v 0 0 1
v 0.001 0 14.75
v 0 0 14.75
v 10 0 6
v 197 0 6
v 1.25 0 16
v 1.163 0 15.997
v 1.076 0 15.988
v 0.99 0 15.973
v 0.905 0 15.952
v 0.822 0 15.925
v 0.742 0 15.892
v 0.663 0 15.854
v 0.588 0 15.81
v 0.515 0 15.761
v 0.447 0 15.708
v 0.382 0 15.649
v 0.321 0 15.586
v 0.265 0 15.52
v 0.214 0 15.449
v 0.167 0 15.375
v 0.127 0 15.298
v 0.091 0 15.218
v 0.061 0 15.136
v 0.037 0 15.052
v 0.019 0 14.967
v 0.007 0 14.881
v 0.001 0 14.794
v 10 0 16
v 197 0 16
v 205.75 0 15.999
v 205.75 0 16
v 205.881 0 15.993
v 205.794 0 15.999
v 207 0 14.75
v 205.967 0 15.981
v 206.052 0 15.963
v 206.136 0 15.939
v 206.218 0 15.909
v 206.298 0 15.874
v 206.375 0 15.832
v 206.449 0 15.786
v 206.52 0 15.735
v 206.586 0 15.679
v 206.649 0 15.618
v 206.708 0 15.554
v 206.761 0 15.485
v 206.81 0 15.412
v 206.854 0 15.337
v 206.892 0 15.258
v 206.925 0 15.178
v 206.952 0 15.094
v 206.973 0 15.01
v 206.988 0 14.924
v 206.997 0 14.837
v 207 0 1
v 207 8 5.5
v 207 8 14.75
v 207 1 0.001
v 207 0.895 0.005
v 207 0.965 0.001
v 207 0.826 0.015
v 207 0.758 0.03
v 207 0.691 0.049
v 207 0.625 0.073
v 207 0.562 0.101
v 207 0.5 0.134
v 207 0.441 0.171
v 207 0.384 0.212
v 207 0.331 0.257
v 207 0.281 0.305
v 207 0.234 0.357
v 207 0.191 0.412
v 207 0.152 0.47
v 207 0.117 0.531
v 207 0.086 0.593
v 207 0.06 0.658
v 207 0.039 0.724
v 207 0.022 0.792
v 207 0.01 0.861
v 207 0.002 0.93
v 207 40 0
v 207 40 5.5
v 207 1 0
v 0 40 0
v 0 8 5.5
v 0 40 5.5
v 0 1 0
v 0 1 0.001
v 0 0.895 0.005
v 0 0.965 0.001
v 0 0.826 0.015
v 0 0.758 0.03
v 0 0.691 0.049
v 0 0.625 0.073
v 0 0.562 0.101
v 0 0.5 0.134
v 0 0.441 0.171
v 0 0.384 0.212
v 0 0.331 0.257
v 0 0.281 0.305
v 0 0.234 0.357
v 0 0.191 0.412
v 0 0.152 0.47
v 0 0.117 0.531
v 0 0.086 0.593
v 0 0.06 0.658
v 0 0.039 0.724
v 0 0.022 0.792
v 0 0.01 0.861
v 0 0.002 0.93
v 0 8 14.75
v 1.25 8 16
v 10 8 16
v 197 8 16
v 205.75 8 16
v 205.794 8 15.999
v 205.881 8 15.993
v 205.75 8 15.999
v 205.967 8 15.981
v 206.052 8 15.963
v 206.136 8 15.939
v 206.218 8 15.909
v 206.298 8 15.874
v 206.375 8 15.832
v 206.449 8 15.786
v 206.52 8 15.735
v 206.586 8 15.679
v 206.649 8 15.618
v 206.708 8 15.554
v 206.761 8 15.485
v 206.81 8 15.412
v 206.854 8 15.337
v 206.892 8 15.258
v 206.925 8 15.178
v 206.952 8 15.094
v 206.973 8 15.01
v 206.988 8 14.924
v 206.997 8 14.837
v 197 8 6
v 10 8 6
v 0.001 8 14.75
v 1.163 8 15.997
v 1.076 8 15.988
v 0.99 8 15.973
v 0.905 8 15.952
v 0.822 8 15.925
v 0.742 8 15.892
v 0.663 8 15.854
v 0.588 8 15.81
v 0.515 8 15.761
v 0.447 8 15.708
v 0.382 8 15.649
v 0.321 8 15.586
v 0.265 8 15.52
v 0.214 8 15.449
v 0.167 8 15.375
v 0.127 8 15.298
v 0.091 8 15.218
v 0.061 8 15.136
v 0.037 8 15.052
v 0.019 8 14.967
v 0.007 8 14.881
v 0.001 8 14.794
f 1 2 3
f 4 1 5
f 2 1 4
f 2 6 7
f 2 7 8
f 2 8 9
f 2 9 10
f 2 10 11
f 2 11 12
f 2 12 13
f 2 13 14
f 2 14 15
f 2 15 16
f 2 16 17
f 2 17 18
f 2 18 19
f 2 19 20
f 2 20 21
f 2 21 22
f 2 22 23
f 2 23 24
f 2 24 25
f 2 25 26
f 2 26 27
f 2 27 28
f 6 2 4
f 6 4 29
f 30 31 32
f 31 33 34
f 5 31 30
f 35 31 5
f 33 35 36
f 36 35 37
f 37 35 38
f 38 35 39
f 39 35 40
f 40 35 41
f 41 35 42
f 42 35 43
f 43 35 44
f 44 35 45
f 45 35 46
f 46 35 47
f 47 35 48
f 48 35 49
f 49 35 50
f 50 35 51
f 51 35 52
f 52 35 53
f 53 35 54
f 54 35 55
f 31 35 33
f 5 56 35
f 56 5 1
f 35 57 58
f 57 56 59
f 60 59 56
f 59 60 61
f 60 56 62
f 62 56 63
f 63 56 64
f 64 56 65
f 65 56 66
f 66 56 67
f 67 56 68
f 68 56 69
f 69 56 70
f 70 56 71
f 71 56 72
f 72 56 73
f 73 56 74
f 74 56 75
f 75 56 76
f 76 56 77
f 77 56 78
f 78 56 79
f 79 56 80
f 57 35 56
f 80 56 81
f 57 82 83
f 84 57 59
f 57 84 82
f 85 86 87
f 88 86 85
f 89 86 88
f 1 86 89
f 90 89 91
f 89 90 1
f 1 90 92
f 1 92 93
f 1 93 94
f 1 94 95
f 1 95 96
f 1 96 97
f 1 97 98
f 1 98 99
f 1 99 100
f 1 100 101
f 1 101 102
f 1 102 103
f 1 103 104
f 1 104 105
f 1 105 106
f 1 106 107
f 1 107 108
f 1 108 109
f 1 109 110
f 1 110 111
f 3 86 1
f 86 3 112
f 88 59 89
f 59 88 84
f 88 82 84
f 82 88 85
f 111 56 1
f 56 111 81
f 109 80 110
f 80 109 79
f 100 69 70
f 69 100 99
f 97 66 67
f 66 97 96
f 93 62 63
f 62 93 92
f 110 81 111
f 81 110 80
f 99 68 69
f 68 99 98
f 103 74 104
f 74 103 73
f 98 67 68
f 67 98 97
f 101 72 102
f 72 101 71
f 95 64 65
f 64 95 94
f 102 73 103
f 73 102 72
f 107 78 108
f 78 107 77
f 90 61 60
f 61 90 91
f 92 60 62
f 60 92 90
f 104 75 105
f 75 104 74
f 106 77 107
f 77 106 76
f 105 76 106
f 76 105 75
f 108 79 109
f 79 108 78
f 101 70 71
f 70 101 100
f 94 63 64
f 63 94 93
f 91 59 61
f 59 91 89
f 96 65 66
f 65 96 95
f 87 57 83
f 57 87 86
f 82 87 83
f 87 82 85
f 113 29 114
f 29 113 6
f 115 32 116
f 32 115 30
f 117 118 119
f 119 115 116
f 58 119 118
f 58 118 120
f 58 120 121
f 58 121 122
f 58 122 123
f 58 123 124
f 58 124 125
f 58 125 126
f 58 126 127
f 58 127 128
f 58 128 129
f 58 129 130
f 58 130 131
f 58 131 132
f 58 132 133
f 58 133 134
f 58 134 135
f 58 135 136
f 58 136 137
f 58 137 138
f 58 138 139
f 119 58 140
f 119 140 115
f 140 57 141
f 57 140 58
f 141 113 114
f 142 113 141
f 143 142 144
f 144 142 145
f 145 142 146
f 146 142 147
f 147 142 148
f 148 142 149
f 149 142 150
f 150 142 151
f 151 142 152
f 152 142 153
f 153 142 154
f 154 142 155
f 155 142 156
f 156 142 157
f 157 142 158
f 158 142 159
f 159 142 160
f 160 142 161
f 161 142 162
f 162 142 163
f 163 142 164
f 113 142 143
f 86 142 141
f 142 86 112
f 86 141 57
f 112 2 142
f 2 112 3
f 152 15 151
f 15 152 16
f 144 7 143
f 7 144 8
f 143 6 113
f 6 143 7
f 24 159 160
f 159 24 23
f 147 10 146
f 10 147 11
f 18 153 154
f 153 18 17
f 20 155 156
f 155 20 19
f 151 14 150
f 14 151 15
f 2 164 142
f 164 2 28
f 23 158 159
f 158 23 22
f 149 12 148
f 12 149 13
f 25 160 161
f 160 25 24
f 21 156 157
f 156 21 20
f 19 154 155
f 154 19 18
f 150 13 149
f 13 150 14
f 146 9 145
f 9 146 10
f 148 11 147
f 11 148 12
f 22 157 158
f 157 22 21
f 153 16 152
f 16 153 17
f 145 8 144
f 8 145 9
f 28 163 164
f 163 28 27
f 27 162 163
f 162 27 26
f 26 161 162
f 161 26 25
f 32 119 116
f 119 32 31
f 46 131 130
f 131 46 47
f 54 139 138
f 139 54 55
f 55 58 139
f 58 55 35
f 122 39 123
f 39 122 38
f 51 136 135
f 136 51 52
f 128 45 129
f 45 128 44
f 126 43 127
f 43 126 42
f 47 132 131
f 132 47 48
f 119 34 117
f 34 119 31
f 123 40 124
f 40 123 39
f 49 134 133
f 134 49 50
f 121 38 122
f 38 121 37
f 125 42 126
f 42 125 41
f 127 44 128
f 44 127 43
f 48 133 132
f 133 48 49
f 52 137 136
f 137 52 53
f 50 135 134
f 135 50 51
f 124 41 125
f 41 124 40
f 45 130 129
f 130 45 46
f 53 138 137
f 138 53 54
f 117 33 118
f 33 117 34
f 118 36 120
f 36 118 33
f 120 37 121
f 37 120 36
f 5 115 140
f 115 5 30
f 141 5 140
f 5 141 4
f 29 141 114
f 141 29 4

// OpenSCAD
$fn = 90;
width = 207;
depth = 40;
totalHeight = 16;
baseHeight = 5.5;

frontWallDepth = 8;



//!concaveQuarterCircle(3, 5);

difference(){
	union(){
		cube([width, depth, baseHeight]);
		cube([width, frontWallDepth, totalHeight]);
	}
	
	slitWidth = width-20;
	slitHeight = 10;
	#translate([(width-slitWidth)/2, 0, totalHeight-slitHeight]){
		cube([slitWidth, frontWallDepth, slitHeight]);
	}
	
	diameter = 2.5; //measured 2 but to be safe we make a bit more
	#translate([diameter/2, frontWallDepth, totalHeight-diameter/2])
		concaveQuarterCircle(diameter, frontWallDepth);
	#translate([width-diameter/2, frontWallDepth, totalHeight-diameter/2])
		rotate([0, 90, 0])
			concaveQuarterCircle(diameter, frontWallDepth);
	
	bottomDiameter = 2;
	#translate([0, bottomDiameter/2, bottomDiameter/2])
		rotate([0, -90, 90])
			concaveQuarterCircle(bottomDiameter, width);
}

module concaveQuarterCircle(diameter, depth){
	rotate([90, -90, 0]){
		difference(){
			cube([diameter/2, diameter/2, depth]);
			translate([0, 0, -1])
				cylinder(d=diameter, h=depth+2);
		}
	}
}
